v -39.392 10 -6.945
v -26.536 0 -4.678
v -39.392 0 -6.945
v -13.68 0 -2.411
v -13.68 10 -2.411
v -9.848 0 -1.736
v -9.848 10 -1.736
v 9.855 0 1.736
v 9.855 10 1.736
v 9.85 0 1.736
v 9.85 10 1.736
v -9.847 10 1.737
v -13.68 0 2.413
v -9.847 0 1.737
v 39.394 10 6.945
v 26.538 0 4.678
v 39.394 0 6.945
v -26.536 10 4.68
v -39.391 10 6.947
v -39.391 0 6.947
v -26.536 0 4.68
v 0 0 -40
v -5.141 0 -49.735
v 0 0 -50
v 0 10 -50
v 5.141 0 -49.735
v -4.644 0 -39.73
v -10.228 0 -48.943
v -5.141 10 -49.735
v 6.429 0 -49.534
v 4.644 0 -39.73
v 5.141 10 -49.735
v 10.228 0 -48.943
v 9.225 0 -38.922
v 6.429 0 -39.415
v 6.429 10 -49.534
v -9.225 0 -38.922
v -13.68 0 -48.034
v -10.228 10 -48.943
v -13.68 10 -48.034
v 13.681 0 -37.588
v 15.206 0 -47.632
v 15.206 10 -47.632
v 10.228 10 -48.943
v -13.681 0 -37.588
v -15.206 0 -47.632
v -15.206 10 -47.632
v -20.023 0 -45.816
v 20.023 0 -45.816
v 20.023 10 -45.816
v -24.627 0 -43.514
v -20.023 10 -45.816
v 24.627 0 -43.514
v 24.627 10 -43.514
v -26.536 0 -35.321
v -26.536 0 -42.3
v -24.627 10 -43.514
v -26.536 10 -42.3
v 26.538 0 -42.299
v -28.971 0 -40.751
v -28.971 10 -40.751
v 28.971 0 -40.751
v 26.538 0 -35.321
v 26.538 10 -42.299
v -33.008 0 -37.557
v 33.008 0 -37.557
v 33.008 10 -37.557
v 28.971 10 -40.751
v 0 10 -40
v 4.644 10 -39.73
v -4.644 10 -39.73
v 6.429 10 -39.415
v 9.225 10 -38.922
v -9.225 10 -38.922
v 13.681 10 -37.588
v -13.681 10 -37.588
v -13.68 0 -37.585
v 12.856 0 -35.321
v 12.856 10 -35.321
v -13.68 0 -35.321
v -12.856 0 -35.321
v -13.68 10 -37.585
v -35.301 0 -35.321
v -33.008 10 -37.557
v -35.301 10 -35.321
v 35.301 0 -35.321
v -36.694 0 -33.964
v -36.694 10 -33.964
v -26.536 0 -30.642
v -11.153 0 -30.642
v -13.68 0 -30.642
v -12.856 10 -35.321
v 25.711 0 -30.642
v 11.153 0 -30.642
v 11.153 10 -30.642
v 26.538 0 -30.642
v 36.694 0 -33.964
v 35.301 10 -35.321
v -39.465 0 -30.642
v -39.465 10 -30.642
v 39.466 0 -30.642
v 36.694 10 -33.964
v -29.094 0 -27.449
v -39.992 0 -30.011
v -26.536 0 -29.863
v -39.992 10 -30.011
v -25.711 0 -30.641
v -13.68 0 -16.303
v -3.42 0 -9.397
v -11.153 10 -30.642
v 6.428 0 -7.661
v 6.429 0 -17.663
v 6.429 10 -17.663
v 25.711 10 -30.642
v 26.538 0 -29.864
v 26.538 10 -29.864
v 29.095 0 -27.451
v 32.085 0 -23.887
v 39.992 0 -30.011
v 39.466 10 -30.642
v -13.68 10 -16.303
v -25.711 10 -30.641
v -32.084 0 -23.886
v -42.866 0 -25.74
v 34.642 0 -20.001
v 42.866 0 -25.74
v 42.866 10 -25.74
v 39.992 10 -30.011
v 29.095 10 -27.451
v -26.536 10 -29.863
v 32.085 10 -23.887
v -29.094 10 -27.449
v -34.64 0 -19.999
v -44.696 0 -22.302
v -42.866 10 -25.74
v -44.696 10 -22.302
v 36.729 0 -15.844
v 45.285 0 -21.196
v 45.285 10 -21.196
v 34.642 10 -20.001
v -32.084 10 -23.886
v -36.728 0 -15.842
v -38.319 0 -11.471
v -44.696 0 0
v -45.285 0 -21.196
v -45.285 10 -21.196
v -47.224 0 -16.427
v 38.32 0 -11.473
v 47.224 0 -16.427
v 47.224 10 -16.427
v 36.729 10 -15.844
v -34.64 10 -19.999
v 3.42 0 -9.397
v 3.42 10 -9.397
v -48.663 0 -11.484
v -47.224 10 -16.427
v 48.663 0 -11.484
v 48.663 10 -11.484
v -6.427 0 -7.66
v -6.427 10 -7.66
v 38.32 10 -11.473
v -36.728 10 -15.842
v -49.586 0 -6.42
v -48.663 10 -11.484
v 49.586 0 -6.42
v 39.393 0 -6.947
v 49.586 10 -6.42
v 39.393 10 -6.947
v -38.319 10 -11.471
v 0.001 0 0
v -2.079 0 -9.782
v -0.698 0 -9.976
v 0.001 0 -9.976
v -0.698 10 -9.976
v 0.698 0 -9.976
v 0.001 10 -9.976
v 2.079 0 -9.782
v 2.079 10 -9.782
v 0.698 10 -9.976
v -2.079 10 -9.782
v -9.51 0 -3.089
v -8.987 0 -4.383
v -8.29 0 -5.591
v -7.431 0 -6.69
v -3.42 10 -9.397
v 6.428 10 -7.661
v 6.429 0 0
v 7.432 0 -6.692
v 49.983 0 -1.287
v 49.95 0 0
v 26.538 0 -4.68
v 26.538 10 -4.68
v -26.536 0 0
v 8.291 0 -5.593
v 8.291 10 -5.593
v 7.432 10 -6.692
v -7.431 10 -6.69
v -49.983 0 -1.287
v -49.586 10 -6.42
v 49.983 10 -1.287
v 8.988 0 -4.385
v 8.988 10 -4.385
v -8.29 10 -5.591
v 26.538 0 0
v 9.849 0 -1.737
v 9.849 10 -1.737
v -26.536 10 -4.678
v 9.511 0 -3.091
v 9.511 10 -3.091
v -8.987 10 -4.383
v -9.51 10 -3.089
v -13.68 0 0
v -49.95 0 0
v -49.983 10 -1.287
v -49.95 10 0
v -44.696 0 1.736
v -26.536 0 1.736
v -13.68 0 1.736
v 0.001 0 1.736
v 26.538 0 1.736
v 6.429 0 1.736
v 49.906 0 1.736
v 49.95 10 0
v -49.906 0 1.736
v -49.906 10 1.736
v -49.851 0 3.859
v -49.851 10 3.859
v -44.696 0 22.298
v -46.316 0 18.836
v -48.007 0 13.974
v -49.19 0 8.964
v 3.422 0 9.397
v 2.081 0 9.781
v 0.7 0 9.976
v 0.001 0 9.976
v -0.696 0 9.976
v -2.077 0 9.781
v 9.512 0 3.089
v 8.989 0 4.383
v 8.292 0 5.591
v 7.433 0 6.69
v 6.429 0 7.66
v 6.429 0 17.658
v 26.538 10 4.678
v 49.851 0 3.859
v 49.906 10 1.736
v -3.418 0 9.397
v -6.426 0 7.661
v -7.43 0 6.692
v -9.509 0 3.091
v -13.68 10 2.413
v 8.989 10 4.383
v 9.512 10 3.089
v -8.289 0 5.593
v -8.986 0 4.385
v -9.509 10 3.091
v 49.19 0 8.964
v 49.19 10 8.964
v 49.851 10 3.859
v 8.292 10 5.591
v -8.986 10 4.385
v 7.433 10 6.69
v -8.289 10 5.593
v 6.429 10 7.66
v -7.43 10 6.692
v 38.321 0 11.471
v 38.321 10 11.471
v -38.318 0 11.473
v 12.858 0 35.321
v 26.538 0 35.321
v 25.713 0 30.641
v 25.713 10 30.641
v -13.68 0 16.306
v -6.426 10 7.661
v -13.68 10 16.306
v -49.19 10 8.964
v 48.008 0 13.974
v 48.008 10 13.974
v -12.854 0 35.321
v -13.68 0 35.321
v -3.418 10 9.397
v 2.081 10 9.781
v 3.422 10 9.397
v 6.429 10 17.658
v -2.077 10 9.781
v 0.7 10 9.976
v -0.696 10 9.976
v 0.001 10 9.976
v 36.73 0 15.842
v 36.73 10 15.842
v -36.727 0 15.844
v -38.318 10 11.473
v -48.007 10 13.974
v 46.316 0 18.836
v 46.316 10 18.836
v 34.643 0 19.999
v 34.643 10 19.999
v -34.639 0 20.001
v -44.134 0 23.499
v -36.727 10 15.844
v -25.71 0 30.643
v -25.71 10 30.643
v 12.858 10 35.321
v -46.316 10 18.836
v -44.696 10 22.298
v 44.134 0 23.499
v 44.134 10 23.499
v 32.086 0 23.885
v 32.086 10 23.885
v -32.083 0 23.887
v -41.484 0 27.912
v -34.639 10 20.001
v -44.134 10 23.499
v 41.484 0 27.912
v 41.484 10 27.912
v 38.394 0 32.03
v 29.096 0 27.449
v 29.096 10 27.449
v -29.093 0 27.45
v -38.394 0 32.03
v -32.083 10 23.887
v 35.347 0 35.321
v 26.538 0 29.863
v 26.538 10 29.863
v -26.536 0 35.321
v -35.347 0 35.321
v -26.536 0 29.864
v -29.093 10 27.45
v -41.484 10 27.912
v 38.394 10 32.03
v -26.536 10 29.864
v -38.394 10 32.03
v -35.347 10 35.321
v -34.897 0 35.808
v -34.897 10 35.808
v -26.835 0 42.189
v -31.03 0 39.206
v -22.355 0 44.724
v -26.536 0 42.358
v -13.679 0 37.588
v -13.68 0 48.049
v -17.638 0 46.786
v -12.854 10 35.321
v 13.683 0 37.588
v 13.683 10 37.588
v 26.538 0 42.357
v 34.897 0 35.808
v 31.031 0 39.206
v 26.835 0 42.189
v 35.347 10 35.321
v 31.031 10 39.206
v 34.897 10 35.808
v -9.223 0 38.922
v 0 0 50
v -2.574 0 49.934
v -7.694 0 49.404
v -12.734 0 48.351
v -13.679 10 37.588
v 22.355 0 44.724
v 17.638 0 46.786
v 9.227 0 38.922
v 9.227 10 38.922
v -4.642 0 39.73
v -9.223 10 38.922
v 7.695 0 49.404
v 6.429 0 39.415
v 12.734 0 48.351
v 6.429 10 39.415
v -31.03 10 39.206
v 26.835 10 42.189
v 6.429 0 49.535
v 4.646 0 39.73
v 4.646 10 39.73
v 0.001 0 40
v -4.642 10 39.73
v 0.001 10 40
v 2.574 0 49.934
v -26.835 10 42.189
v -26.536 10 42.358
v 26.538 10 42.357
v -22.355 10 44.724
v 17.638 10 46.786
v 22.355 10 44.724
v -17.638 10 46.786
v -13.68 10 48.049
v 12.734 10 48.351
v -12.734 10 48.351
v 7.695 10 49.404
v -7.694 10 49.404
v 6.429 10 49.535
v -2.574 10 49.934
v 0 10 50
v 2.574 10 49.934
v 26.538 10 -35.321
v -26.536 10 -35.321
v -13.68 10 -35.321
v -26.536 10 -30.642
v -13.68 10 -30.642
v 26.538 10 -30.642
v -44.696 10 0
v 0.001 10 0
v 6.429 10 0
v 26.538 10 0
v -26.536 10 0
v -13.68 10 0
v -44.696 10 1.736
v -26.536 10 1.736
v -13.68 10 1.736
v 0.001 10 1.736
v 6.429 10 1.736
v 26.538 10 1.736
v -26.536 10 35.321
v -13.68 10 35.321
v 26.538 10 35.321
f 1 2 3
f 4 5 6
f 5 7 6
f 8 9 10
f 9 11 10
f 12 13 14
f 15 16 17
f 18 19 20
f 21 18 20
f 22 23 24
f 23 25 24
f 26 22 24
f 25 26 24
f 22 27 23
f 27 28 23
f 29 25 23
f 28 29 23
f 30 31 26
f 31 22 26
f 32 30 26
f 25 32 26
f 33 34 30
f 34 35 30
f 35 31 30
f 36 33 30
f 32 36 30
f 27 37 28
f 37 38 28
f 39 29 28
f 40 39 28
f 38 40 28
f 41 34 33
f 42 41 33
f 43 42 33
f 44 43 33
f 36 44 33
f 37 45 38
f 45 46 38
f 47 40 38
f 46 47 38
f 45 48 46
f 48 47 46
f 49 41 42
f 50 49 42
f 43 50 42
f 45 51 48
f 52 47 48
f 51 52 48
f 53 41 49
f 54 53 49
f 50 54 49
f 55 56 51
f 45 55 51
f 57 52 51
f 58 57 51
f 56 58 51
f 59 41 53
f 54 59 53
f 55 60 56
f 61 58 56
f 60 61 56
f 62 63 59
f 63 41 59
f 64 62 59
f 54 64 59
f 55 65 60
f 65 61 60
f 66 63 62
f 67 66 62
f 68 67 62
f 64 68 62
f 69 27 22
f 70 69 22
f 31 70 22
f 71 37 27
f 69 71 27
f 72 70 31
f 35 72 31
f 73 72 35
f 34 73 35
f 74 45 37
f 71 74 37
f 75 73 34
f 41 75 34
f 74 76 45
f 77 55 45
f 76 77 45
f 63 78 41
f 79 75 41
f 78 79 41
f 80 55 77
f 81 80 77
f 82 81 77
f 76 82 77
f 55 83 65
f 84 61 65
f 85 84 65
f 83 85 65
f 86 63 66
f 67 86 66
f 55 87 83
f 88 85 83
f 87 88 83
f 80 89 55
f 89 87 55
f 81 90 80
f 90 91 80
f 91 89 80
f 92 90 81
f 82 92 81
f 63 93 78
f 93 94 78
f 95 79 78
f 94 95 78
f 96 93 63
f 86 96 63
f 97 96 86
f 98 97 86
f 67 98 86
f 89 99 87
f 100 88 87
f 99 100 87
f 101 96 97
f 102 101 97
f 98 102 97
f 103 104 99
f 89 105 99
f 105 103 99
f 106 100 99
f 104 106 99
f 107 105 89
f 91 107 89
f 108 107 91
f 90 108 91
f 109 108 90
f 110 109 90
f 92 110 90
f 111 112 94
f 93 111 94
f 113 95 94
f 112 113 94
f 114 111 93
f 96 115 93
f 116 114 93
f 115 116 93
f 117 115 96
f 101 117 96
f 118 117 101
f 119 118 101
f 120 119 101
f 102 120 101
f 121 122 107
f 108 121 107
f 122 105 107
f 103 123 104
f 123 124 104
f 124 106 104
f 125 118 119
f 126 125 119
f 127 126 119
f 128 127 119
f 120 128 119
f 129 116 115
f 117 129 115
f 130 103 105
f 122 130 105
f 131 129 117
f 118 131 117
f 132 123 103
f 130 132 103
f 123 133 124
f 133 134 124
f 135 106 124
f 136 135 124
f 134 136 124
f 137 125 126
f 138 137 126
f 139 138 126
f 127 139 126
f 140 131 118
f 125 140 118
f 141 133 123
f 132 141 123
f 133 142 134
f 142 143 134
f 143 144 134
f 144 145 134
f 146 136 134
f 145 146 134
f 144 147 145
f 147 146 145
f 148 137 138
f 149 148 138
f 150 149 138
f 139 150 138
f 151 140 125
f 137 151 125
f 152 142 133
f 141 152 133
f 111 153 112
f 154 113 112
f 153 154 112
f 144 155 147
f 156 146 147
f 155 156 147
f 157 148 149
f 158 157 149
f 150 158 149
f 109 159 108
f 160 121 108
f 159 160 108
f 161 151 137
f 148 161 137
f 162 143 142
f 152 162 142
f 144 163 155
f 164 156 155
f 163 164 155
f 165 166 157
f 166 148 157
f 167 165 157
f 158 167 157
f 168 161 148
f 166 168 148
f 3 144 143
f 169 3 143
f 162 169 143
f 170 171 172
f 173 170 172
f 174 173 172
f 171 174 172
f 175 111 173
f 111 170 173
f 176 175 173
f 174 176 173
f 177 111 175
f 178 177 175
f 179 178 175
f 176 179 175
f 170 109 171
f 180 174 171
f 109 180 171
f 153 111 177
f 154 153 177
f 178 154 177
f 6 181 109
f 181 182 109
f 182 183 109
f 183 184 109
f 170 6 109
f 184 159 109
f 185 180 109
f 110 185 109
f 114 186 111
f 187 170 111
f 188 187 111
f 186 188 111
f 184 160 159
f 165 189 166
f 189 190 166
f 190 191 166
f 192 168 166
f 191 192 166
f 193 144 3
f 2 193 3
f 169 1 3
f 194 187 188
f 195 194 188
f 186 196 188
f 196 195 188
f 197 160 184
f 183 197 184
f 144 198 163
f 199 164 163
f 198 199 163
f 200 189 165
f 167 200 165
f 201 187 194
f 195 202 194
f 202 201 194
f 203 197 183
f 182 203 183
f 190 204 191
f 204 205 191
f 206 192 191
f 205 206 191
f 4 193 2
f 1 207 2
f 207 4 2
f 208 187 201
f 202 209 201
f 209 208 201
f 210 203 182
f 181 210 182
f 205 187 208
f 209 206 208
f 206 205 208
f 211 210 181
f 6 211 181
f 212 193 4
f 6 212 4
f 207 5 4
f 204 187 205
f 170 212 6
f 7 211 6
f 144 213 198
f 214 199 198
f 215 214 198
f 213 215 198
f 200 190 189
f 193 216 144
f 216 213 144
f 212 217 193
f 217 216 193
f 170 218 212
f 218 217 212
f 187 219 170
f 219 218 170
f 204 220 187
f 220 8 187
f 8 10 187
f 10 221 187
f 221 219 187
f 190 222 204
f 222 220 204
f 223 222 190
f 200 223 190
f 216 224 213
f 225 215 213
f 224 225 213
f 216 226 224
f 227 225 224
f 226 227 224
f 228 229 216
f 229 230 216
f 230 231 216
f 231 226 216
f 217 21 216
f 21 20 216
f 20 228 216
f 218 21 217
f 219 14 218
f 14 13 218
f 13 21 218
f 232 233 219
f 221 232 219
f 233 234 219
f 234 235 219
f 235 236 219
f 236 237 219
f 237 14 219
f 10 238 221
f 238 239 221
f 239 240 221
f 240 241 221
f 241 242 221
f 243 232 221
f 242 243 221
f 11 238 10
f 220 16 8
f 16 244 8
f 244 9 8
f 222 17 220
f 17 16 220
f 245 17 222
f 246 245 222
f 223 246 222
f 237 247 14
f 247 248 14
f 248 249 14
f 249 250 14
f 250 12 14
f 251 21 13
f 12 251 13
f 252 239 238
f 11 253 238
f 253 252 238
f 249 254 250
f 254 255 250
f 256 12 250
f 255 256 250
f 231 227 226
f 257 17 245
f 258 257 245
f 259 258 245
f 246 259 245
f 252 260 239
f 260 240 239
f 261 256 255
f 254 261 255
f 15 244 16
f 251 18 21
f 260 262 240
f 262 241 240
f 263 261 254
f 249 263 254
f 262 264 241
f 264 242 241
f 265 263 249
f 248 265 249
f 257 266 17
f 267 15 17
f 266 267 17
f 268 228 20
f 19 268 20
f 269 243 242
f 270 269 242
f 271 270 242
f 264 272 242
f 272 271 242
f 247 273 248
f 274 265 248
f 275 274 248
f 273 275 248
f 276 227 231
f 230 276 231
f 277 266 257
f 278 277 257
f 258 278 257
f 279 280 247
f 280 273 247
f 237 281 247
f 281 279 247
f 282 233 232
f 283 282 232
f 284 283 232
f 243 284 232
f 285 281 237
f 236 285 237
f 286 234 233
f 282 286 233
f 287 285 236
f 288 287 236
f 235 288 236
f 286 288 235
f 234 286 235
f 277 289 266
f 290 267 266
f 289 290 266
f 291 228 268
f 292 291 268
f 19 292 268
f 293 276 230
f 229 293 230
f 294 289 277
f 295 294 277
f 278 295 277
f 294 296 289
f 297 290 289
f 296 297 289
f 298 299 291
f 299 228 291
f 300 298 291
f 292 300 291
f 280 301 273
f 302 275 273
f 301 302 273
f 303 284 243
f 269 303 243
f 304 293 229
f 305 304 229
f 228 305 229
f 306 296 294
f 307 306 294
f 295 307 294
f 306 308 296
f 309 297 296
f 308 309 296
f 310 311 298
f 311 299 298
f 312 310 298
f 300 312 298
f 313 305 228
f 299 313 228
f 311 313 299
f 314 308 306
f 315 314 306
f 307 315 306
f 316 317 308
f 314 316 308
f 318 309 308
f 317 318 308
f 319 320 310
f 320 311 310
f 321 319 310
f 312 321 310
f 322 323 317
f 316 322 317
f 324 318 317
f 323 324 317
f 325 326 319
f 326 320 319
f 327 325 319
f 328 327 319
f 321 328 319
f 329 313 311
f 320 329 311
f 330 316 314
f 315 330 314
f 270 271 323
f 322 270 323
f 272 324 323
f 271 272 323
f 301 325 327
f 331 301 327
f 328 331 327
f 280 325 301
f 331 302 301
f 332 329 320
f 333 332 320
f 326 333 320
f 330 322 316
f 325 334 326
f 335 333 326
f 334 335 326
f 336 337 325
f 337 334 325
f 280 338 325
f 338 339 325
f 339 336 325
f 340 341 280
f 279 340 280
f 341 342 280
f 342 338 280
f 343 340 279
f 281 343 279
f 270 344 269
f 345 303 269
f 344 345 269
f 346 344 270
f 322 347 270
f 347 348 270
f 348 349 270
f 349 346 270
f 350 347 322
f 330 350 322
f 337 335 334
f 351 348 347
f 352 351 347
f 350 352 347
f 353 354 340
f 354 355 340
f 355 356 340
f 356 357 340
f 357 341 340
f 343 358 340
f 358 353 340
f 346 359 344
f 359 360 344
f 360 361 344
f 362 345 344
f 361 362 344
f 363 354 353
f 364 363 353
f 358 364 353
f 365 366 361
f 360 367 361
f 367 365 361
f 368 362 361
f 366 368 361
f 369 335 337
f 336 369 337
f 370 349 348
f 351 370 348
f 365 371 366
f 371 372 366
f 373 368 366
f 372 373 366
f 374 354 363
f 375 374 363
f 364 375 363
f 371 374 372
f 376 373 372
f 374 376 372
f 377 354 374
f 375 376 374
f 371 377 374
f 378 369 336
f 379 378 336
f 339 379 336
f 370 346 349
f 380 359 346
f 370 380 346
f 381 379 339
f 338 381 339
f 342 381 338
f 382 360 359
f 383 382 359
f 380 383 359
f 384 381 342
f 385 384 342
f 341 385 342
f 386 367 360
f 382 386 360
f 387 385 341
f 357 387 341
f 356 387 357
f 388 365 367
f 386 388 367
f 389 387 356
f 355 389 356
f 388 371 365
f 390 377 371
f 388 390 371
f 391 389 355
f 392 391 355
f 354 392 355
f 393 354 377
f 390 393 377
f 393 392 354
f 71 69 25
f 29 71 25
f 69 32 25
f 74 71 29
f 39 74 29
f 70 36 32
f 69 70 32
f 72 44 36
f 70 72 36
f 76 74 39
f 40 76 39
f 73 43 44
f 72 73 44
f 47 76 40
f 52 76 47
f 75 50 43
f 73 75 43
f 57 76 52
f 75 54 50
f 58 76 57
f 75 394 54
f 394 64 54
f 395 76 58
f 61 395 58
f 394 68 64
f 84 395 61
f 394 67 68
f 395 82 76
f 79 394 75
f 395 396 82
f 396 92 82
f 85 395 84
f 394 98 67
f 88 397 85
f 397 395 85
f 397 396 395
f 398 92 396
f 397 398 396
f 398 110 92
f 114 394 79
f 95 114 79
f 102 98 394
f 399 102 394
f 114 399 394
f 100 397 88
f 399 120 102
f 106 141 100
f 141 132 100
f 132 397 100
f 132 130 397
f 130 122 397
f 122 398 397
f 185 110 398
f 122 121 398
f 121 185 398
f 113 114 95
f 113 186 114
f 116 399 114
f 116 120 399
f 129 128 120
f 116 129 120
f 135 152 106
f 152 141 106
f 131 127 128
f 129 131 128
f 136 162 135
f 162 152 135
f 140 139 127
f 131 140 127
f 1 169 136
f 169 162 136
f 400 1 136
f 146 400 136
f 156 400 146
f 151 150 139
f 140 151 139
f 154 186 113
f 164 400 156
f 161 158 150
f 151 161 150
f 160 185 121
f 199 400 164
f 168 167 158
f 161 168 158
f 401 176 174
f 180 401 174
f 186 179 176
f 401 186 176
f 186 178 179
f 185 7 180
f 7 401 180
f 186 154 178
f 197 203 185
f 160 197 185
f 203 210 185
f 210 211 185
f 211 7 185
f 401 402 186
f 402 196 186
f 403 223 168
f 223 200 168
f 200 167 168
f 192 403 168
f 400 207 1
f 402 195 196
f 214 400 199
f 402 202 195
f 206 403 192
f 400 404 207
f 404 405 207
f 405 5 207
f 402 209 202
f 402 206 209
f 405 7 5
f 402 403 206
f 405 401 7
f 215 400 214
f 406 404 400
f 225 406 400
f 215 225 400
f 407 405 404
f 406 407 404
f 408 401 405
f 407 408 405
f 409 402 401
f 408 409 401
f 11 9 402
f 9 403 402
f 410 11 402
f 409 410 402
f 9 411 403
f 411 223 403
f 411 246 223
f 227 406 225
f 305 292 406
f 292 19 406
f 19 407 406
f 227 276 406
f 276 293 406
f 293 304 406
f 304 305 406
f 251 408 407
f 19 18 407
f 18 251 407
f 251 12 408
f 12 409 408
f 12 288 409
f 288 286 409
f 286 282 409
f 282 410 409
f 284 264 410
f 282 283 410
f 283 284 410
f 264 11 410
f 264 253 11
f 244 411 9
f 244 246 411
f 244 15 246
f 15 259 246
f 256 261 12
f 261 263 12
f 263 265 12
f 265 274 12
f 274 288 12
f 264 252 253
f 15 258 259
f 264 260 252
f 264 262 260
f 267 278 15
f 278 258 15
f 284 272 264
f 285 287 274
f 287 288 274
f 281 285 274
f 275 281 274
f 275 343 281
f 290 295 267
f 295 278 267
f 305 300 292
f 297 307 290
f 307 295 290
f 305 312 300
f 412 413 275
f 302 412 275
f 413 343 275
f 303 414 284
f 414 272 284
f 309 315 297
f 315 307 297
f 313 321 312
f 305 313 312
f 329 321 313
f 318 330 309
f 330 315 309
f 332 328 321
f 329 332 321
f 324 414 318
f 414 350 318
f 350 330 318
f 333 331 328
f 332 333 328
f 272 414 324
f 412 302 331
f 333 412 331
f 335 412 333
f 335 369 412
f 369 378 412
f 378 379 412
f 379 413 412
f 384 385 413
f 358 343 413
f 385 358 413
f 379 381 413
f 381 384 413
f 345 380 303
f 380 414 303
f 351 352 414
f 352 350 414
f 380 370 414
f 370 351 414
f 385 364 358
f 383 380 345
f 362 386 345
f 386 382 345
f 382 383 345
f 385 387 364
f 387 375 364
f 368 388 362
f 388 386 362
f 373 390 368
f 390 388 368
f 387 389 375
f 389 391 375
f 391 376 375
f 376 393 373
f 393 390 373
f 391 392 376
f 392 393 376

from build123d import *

# Parameters (mm, degrees)
SKETCH_1_R      = 50
EXTRUDE_1_DEPTH = 10


with BuildPart() as part:
    # ｽｹｯﾁ1 → ﾎﾞｽ - 押し出し1 (new body)
    with BuildSketch(Plane(origin=(0, 0, 0), x_dir=(1, 0, 0), z_dir=(0, 1, 0))):
        Circle(SKETCH_1_R)
        with BuildLine():
            Line((-3.420201433, 9.396926208), (-13.680805733, 37.587704831))
            ThreePointArc((-13.680805733, 37.587704831), (0, 40), (13.680805733, 37.587704831))
            Line((13.680805733, 37.587704831), (3.420201433, 9.396926208))
            ThreePointArc((3.420201433, 9.396926208), (0, 10), (-3.420201433, 9.396926208))
        make_face(mode=Mode.SUBTRACT)
        with BuildLine():
            Line((6.428376097, 7.661310457), (25.712004387, 30.64264375))
            ThreePointArc((25.712004387, 30.64264375), (34.641516151, 20.000866025), (39.39281012, 6.946793132))
            Line((39.39281012, 6.946793132), (9.84857753, 1.737347802))
            ThreePointArc((9.84857753, 1.737347802), (8.660754038, 5.000866025), (6.428376097, 7.661310457))
        make_face(mode=Mode.SUBTRACT)
        with BuildLine():
            Line((9.84957753, -1.735615751), (39.39381012, -6.945061081))
            ThreePointArc((39.39381012, -6.945061081), (34.642516151, -19.999133975), (25.713004387, -30.640911699))
            Line((25.713004387, -30.640911699), (6.429376097, -7.659578406))
            ThreePointArc((6.429376097, -7.659578406), (8.661754038, -4.999133975), (9.84957753, -1.735615751))
        make_face(mode=Mode.SUBTRACT)
        with BuildLine():
            Line((3.422201433, -9.396926208), (13.682805733, -37.587704831))
            ThreePointArc((13.682805733, -37.587704831), (0.002, -40), (-13.678805733, -37.587704831))
            Line((-13.678805733, -37.587704831), (-3.418201433, -9.396926208))
            ThreePointArc((-3.418201433, -9.396926208), (0.002, -10), (3.422201433, -9.396926208))
        make_face(mode=Mode.SUBTRACT)
        with BuildLine():
            Line((-6.426376097, -7.661310457), (-25.710004387, -30.64264375))
            ThreePointArc((-25.710004387, -30.64264375), (-34.639516151, -20.000866025), (-39.39081012, -6.946793132))
            Line((-39.39081012, -6.946793132), (-9.84657753, -1.737347802))
            ThreePointArc((-9.84657753, -1.737347802), (-8.658754038, -5.000866025), (-6.426376097, -7.661310457))
        make_face(mode=Mode.SUBTRACT)
        with BuildLine():
            Line((-9.84757753, 1.735615751), (-39.39181012, 6.945061081))
            ThreePointArc((-39.39181012, 6.945061081), (-34.640516151, 19.999133975), (-25.711004387, 30.640911699))
            Line((-25.711004387, 30.640911699), (-6.427376097, 7.659578406))
            ThreePointArc((-6.427376097, 7.659578406), (-8.659754038, 4.999133975), (-9.84757753, 1.735615751))
        make_face(mode=Mode.SUBTRACT)
    extrude(amount=EXTRUDE_1_DEPTH)


solid = part.part
